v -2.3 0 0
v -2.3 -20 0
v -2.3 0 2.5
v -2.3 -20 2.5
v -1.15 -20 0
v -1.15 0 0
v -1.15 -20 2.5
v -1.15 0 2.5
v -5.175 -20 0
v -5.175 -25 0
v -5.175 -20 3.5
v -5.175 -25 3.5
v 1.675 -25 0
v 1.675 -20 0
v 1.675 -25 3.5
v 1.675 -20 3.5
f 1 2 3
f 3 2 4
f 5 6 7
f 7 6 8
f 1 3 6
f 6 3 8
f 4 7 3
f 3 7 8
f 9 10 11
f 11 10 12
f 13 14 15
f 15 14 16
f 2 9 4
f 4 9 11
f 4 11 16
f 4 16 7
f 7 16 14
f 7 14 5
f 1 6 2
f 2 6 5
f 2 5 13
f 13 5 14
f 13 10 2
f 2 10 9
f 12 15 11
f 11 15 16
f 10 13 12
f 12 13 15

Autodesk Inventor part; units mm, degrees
ref_plane "YZ Plane" through (0, 0, 0) normal (1, 0, 0) x (0, 1, 0)
ref_plane "XZ Plane" through (0, 0, 0) normal (0, 1, 0) x (-1, 0, 0)
ref_plane "XY Plane" through (0, 0, 0) normal (0, 0, 1) x (1, 0, 0)
sketch "Sketch1" plane through (0, 0, 0) normal (0, 0, 1) x (1, 0, 0)
  line L0 (0, 0) -> (-3.45, 0)
  line L1 (-3.45, 0) -> (-3.45, -20)
  line L2 (-3.45, -20) -> (0, -20)
  line L3 (0, -20) -> (0, 0)
  line L4 (-1.725, -20) -> (-5.425, -20)
  line L5 (-5.425, -20) -> (1.925, -20)
  line L6 (1.925, -20) -> (1.925, -25)
  line L7 (1.925, -25) -> (-5.425, -25)
  line L8 (-5.425, -25) -> (-5.425, -20)
  dimension "d0" = 20
  dimension "d1" = 3.45
  dimension "d2" = 3.7
  dimension "d3" = 7.35
  dimension "d4" = 5
extrude "Extrusion1" add sketch "Sketch1" along normal blind 3.5
sketch "Sketch4" plane through (0, 0, 0) normal (0, 0, -1) x (-1, 0, 0)
  line L0 (0, -20) -> (0, 0) projected
  line L1 (-1.925, -20) -> (0, -20) projected
  line L2 (-1.925, -25) -> (-1.925, -20) projected
  line L3 (5.425, -25) -> (-1.925, -25) projected
  line L4 (5.425, -20) -> (5.425, -25) projected
  line L5 (3.45, -20) -> (5.425, -20) projected
  line L6 (3.45, 0) -> (3.45, -20) projected
  line L7 (0, 0) -> (3.45, 0) projected
  line L8 (3.45, 0) -> (5.475, 0)
  line L9 (0, 0) -> (-2.025, 0)
  line L10 (5.475, 0) -> (-2.025, 0)
  line L11 (-2.025, 0) -> (-2.025, 4)
  line L12 (-2.025, 4) -> (5.475, 4)
  line L13 (5.475, 4) -> (5.475, 0)
  circle A0 centre (1.725, 4) radius 3.75
  circle A1 centre (1.725, 4) radius 1.55
  dimension "d22" = 2.025
  dimension "d23" = 2.025
  dimension "d24" = 7.5
  dimension "d25" = 4
  dimension "d26" = 3.1
extrude "Extrusion4" add sketch "Sketch4" against normal up to surface (3.5 mm away) contours L9 L11 A0 L13 L8 L7 | A0 L12 A1 | L12 A1 A0
sketch "Sketch5" plane through (0, 0, 0) normal (0, 0, -1) x (-1, 0, 0)
  circle A0 centre (1.725, 4) radius 1.55 projected
  line L0 (0, -20) -> (0, 0) projected
  line L1 (-1.925, -20) -> (0, -20) projected
  line L2 (-1.925, -25) -> (-1.925, -20) projected
  line L3 (5.425, -25) -> (-1.925, -25) projected
  line L4 (5.425, -20) -> (5.425, -25) projected
  line L5 (3.45, -20) -> (5.425, -20) projected
  line L6 (3.45, 0) -> (3.45, -20) projected
  line L7 (3.45, 0) -> (5.475, 0) projected
  line L8 (5.475, 0) -> (5.475, 4) projected
  arc A1 (5.475, 4) -> (-2.025, 4) centre (1.725, 4) ccw projected
  line L9 (-2.025, 4) -> (-2.025, 0) projected
  line L10 (-2.025, 0) -> (0, 0) projected
  line L11 (3.45, -10) -> (0, -10)
  line L12 (2.45, -10) -> (2.45, -20)
  line L13 (1, -10) -> (1, -20)
  line L14 (3.45, -20) -> (2.45, -20)
  line L15 (1, -20) -> (0, -20)
  dimension "d29" = 1
  dimension "d30" = 1
extrude "Extrusion5" cut sketch "Sketch5" against normal up to surface (3.5 mm away) contours L0 L11 L13 L15 | L0 L10 L9 A1 L8 L7 L6 L11 | L11 L6 L14 L12
sketch "Sketch6" plane through (0, 0, 3.5) normal (0, 0, 1) x (1, 0, 0)
  line L0 (1.925, -20) -> (-1, -20) projected
  line L1 (-1, -20) -> (-1, -10) projected
  line L2 (-1, -10) -> (-2.45, -10) projected
  line L3 (-2.45, -10) -> (-2.45, -20) projected
  line L4 (-2.45, -20) -> (-5.425, -20) projected
  line L5 (-5.425, -20) -> (-5.425, -25) projected
  line L6 (-5.425, -25) -> (1.925, -25) projected
  line L7 (1.925, -25) -> (1.925, -20) projected
  line L8 (-1, -20) -> (-2.45, -20)
  point P0 (0, 0)
extrude "Extrusion6" cut sketch "Sketch6" against normal blind 1.75 contours L8 L3 L2 L1
sketch "Sketch7" plane through (-5.425, -20, 3.5) normal (0, 1, 0) x (1, 0, 0)
  line L0 (4.425, 3.5) -> (7.35, 3.5) projected
  line L1 (4.425, 3.5) -> (4.425, 1.75) projected
  line L2 (4.425, 1.75) -> (2.975, 1.75) projected
  line L3 (2.975, 3.5) -> (2.975, 1.75) projected
  line L4 (0, 3.5) -> (2.975, 3.5) projected
  line L5 (0, 3.5) -> (0, 0) projected
  line L6 (7.35, 0) -> (0, 0) projected
  line L7 (7.35, 3.5) -> (7.35, 0) projected
  line L8 (0.5, 0.5) -> (0.5, 3)
  line L9 (0.5, 3) -> (2.475, 3)
  line L10 (2.475, 3) -> (2.475, 1.25)
  line L11 (2.475, 1.25) -> (4.925, 1.25)
  line L12 (4.925, 1.25) -> (4.925, 3)
  line L13 (4.925, 3) -> (6.85, 3)
  line L14 (6.85, 3) -> (6.85, 0.5)
  line L15 (6.85, 0.5) -> (0.5, 0.5)
  line L16 (2.475, 3) -> (4.925, 3)
  line L17 (2.975, 3.5) -> (4.425, 3.5)
  point P0 (5.425, 3.5)
  dimension "d35" = 0.5
extrude "Extrusion7" cut sketch "Sketch7" along normal blind 10 and the other way blind 2 contours L0 L7 L6 L5 L4 L3 L16 L9 L8 L15 L14 L13 L1 | L1 L16 L3 L17
sketch "Sketch8" plane through (-5.425, -22, 3.5) normal (0, 1, 0) x (1, 0, 0)
  line L0 (0, 3.5) -> (7.35, 3.5) projected
  line L1 (0, 0) -> (0, 3.5) projected
  line L2 (7.35, 0) -> (0, 0) projected
  line L3 (7.35, 3.5) -> (7.35, 0) projected
  line L4 (6.85, 3) -> (0.5, 3) projected
  line L5 (6.85, 0.5) -> (6.85, 3) projected
  line L6 (0.5, 0.5) -> (6.85, 0.5) projected
  line L7 (0.5, 3) -> (0.5, 0.5) projected
  point P0 (5.425, 3.5)
extrude "Extrusion8" add sketch "Sketch8" along normal up to surface (2 mm away)
sketch "Sketch9" plane through (-5.425, -20, 0) normal (0, 1, 0) x (1, 0, 0)
  line L0 (0, 0) -> (7.35, 0) projected
  line L1 (0, -3.5) -> (0, 0) projected
  line L2 (7.35, -3.5) -> (0, -3.5) projected
  line L3 (7.35, 0) -> (7.35, -3.5) projected
  line L4 (4.425, -0.5) -> (2.975, -0.5) projected
  line L5 (4.425, -0.5) -> (4.425, -1.75) projected
  line L6 (4.425, -1.75) -> (2.975, -1.75) projected
  line L7 (2.975, -0.5) -> (2.975, -1.75) projected
  line L8 (4.425, -0.5) -> (4.425, 0)
  line L9 (2.975, -0.5) -> (2.975, 0)
  point P0 (5.425, 0)
extrude "Extrusion9" add sketch "Sketch9" along normal blind 10 contours L0 L8 L4 L9
sketch "Sketch10" plane through (0, 0, 1.75) normal (0, 0, 1) x (1, 0, 0)
  line L0 (-1, -20) -> (-2.45, -20) projected
  line L1 (-1, -10) -> (-1, -20) projected
  line L2 (-2.45, -10) -> (-1, -10) projected
  line L3 (-2.45, -20) -> (-2.45, -10) projected
  point P0 (0, 0)
extrude "Extrusion10" add sketch "Sketch10" along normal up to surface (1.75 mm away)
sketch "Sketch11" plane through (-2.45, -10, 0) normal (0, 1, 0) x (1, 0, 0)
  line L0 (0, 0) -> (0, -3.5) projected
  line L1 (0, -3.5) -> (1.45, -3.5) projected
  line L2 (1.45, 0) -> (1.45, -3.5) projected
  line L3 (1.45, 0) -> (0, 0) projected
  point P0 (2.45, 0)
extrude "Extrusion11" add sketch "Sketch11" along normal blind 10
sketch "Sketch12" plane through (0, 0, 3.5) normal (0, 0, 1) x (1, 0, 0)
  line L0 (-5.425, -20) -> (-5.425, -25) projected
  line L1 (-5.425, -25) -> (1.925, -25) projected
  line L2 (1.925, -25) -> (1.925, -20) projected
  line L3 (1.925, -20) -> (-1, -20) projected
  line L4 (-1, -20) -> (-1, 0) projected
  line L5 (-2.45, 0) -> (-1, 0) projected
  line L6 (-2.45, -20) -> (-2.45, 0) projected
  line L7 (-2.45, -20) -> (-5.425, -20) projected
  line L8 (-1.75, -25) -> (-5.425, -25)
  line L9 (-5.425, -25) -> (-5.325, -25)
  line L10 (-5.325, -25) -> (-5.325, -20)
  line L11 (-1.75, -25) -> (1.925, -25)
  line L12 (1.925, -25) -> (1.825, -25)
  line L13 (1.825, -25) -> (1.825, -20)
  point P0 (0, 0)
  dimension "d48" = 0.1
  dimension "d49" = 0.1
extrude "Extrusion12" cut sketch "Sketch12" against normal up to surface (3.5 mm away) contours L7 L10 L1 L0 | L13 L3 L2 L1
sketch "Sketch17" plane through (0, 0, 3.5) normal (0, 0, 1) x (1, 0, 0)
  line L0 (1.825, -25) -> (1.825, -20) projected
  line L1 (1.825, -20) -> (-1, -20) projected
  line L2 (-1, -20) -> (-1, 0) projected
  line L3 (-2.45, 0) -> (-1, 0) projected
  line L4 (-2.45, -20) -> (-2.45, 0) projected
  line L5 (-2.45, -20) -> (-5.325, -20) projected
  line L6 (-5.325, -20) -> (-5.325, -25) projected
  line L7 (-5.325, -25) -> (1.825, -25) projected
  line L8 (-1, -20) -> (-2.45, -20)
  point P0 (0, 0)
extrude "Extrusion17" cut sketch "Sketch17" against normal blind 1 contours L8 L4 L3 L2
sketch "Sketch18" plane through (0, 0, 3.5) normal (0, 0, 1) x (1, 0, 0)
  line L0 (1.825, -20) -> (-5.325, -20) projected
  line L1 (-5.325, -20) -> (-5.325, -25) projected
  line L2 (-5.325, -25) -> (1.825, -25) projected
  line L3 (1.825, -25) -> (1.825, -20) projected
  line L4 (1.825, -25) -> (1.675, -25)
  line L5 (1.675, -25) -> (1.675, -20)
  line L6 (-5.325, -25) -> (-5.175, -25)
  line L7 (-5.175, -25) -> (-5.175, -20)
  point P0 (0, 0)
  dimension "d65" = 0.15
  dimension "d66" = 0.15
extrude "Extrusion18" cut sketch "Sketch18" against normal up to surface (3.5 mm away) contours L3 L2 L5 L0 | L7 L2 L1 L0
sketch "Sketch19" plane through (0, 0, 2.5) normal (0, 0, 1) x (1, 0, 0)
  line L0 (-2.45, 0) -> (-1, 0) projected
  line L1 (-2.45, -20) -> (-2.45, 0) projected
  line L2 (-1, -20) -> (-2.45, -20) projected
  line L3 (-1, 0) -> (-1, -20) projected
  line L4 (-1.725, 0) -> (-2.45, 0)
  line L5 (-2.45, 0) -> (-2.3, 0)
  line L6 (-2.3, 0) -> (-2.3, -20)
  line L7 (-1, -20) -> (-1.15, -20)
  line L8 (-1.15, -20) -> (-1.15, 0)
  point P0 (0, 0)
  dimension "d69" = 0.15
  dimension "d70" = 0.15
extrude "Extrusion19" cut sketch "Sketch19" against normal up to surface (2.5 mm away) contours L0 L6 L2 L1 | L0 L3 L2 L8
equation "\"d23\" = d22"
equation "\"d30\" = d29"
equation "\"d49\" = d48"
equation "\"d69\" = d70"
properties part number "Piston"
